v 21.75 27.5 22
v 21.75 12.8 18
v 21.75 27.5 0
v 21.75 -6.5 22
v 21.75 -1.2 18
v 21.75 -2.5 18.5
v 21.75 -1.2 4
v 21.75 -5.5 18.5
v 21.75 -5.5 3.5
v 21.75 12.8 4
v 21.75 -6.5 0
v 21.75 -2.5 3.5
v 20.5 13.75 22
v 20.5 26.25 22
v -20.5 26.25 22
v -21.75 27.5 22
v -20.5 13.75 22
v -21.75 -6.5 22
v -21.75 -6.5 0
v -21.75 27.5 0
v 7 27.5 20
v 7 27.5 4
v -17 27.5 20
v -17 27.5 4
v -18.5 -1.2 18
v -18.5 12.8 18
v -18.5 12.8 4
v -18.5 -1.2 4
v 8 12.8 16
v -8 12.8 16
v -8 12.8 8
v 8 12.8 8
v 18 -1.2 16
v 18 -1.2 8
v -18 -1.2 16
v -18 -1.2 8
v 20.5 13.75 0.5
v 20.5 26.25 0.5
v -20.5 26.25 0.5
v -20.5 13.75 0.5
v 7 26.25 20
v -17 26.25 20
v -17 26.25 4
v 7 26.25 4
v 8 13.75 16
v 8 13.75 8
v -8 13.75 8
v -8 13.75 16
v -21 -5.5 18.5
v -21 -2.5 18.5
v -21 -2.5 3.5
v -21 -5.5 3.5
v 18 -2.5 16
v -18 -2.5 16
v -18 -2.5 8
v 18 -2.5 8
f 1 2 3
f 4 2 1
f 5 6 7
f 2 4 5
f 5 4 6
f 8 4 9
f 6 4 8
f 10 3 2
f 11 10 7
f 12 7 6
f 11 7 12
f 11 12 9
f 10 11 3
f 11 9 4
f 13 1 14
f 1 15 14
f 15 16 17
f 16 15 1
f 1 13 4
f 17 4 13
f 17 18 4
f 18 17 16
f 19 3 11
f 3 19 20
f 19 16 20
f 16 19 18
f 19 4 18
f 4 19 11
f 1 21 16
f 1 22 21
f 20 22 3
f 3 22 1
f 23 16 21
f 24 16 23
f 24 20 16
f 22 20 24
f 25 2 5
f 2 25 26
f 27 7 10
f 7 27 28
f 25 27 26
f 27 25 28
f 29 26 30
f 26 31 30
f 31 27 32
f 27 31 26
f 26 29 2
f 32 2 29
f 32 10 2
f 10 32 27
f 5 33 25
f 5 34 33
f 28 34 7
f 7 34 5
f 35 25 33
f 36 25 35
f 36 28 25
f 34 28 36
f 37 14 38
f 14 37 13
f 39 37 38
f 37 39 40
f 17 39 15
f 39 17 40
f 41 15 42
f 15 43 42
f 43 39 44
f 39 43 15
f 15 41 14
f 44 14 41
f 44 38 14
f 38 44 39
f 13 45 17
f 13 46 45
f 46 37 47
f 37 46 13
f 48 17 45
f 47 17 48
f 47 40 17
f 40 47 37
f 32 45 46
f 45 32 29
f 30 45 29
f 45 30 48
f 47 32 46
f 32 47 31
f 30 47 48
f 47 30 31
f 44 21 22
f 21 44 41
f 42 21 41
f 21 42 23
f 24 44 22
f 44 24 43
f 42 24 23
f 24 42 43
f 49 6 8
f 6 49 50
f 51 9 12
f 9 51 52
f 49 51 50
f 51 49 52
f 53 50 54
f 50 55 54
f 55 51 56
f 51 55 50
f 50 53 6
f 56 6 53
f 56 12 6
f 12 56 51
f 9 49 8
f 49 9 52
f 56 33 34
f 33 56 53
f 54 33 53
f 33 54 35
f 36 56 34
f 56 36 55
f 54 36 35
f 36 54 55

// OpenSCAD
height_pd1=12;
 height_pd=12;
   color("grey")
   
 difference(){
 union() {
   

    
      translate([0,3.5,11]) 
    
     cube ([43.5,20,22], center=true);  //bottom 
       translate([0,20,11]) 
     
       cube ([43.5,15,22], center=true);
 }
 union() {
        translate([2,5.8,11])
     
          cube ([41.0,14,14], center=true); 
        translate([0,20,28]) 
    
           cube ([41.0,12.5,55], center=true); 
        translate([0,12,height_pd1]) 
    
           cube([16,5,8], center=true);//optical sensor window
        translate([-5,28,height_pd1]) 
     
           cube([24,5,16], center=true);//oled screen
     
           translate([2,-4,11]) 
   
     cube ([46,3,15], center=true);  //optical_filter
     
        translate([0,0,height_pd1]) 
   
           cube([36,8,8], center=true);//optical sensor window 
 
 
     
 }
 }
